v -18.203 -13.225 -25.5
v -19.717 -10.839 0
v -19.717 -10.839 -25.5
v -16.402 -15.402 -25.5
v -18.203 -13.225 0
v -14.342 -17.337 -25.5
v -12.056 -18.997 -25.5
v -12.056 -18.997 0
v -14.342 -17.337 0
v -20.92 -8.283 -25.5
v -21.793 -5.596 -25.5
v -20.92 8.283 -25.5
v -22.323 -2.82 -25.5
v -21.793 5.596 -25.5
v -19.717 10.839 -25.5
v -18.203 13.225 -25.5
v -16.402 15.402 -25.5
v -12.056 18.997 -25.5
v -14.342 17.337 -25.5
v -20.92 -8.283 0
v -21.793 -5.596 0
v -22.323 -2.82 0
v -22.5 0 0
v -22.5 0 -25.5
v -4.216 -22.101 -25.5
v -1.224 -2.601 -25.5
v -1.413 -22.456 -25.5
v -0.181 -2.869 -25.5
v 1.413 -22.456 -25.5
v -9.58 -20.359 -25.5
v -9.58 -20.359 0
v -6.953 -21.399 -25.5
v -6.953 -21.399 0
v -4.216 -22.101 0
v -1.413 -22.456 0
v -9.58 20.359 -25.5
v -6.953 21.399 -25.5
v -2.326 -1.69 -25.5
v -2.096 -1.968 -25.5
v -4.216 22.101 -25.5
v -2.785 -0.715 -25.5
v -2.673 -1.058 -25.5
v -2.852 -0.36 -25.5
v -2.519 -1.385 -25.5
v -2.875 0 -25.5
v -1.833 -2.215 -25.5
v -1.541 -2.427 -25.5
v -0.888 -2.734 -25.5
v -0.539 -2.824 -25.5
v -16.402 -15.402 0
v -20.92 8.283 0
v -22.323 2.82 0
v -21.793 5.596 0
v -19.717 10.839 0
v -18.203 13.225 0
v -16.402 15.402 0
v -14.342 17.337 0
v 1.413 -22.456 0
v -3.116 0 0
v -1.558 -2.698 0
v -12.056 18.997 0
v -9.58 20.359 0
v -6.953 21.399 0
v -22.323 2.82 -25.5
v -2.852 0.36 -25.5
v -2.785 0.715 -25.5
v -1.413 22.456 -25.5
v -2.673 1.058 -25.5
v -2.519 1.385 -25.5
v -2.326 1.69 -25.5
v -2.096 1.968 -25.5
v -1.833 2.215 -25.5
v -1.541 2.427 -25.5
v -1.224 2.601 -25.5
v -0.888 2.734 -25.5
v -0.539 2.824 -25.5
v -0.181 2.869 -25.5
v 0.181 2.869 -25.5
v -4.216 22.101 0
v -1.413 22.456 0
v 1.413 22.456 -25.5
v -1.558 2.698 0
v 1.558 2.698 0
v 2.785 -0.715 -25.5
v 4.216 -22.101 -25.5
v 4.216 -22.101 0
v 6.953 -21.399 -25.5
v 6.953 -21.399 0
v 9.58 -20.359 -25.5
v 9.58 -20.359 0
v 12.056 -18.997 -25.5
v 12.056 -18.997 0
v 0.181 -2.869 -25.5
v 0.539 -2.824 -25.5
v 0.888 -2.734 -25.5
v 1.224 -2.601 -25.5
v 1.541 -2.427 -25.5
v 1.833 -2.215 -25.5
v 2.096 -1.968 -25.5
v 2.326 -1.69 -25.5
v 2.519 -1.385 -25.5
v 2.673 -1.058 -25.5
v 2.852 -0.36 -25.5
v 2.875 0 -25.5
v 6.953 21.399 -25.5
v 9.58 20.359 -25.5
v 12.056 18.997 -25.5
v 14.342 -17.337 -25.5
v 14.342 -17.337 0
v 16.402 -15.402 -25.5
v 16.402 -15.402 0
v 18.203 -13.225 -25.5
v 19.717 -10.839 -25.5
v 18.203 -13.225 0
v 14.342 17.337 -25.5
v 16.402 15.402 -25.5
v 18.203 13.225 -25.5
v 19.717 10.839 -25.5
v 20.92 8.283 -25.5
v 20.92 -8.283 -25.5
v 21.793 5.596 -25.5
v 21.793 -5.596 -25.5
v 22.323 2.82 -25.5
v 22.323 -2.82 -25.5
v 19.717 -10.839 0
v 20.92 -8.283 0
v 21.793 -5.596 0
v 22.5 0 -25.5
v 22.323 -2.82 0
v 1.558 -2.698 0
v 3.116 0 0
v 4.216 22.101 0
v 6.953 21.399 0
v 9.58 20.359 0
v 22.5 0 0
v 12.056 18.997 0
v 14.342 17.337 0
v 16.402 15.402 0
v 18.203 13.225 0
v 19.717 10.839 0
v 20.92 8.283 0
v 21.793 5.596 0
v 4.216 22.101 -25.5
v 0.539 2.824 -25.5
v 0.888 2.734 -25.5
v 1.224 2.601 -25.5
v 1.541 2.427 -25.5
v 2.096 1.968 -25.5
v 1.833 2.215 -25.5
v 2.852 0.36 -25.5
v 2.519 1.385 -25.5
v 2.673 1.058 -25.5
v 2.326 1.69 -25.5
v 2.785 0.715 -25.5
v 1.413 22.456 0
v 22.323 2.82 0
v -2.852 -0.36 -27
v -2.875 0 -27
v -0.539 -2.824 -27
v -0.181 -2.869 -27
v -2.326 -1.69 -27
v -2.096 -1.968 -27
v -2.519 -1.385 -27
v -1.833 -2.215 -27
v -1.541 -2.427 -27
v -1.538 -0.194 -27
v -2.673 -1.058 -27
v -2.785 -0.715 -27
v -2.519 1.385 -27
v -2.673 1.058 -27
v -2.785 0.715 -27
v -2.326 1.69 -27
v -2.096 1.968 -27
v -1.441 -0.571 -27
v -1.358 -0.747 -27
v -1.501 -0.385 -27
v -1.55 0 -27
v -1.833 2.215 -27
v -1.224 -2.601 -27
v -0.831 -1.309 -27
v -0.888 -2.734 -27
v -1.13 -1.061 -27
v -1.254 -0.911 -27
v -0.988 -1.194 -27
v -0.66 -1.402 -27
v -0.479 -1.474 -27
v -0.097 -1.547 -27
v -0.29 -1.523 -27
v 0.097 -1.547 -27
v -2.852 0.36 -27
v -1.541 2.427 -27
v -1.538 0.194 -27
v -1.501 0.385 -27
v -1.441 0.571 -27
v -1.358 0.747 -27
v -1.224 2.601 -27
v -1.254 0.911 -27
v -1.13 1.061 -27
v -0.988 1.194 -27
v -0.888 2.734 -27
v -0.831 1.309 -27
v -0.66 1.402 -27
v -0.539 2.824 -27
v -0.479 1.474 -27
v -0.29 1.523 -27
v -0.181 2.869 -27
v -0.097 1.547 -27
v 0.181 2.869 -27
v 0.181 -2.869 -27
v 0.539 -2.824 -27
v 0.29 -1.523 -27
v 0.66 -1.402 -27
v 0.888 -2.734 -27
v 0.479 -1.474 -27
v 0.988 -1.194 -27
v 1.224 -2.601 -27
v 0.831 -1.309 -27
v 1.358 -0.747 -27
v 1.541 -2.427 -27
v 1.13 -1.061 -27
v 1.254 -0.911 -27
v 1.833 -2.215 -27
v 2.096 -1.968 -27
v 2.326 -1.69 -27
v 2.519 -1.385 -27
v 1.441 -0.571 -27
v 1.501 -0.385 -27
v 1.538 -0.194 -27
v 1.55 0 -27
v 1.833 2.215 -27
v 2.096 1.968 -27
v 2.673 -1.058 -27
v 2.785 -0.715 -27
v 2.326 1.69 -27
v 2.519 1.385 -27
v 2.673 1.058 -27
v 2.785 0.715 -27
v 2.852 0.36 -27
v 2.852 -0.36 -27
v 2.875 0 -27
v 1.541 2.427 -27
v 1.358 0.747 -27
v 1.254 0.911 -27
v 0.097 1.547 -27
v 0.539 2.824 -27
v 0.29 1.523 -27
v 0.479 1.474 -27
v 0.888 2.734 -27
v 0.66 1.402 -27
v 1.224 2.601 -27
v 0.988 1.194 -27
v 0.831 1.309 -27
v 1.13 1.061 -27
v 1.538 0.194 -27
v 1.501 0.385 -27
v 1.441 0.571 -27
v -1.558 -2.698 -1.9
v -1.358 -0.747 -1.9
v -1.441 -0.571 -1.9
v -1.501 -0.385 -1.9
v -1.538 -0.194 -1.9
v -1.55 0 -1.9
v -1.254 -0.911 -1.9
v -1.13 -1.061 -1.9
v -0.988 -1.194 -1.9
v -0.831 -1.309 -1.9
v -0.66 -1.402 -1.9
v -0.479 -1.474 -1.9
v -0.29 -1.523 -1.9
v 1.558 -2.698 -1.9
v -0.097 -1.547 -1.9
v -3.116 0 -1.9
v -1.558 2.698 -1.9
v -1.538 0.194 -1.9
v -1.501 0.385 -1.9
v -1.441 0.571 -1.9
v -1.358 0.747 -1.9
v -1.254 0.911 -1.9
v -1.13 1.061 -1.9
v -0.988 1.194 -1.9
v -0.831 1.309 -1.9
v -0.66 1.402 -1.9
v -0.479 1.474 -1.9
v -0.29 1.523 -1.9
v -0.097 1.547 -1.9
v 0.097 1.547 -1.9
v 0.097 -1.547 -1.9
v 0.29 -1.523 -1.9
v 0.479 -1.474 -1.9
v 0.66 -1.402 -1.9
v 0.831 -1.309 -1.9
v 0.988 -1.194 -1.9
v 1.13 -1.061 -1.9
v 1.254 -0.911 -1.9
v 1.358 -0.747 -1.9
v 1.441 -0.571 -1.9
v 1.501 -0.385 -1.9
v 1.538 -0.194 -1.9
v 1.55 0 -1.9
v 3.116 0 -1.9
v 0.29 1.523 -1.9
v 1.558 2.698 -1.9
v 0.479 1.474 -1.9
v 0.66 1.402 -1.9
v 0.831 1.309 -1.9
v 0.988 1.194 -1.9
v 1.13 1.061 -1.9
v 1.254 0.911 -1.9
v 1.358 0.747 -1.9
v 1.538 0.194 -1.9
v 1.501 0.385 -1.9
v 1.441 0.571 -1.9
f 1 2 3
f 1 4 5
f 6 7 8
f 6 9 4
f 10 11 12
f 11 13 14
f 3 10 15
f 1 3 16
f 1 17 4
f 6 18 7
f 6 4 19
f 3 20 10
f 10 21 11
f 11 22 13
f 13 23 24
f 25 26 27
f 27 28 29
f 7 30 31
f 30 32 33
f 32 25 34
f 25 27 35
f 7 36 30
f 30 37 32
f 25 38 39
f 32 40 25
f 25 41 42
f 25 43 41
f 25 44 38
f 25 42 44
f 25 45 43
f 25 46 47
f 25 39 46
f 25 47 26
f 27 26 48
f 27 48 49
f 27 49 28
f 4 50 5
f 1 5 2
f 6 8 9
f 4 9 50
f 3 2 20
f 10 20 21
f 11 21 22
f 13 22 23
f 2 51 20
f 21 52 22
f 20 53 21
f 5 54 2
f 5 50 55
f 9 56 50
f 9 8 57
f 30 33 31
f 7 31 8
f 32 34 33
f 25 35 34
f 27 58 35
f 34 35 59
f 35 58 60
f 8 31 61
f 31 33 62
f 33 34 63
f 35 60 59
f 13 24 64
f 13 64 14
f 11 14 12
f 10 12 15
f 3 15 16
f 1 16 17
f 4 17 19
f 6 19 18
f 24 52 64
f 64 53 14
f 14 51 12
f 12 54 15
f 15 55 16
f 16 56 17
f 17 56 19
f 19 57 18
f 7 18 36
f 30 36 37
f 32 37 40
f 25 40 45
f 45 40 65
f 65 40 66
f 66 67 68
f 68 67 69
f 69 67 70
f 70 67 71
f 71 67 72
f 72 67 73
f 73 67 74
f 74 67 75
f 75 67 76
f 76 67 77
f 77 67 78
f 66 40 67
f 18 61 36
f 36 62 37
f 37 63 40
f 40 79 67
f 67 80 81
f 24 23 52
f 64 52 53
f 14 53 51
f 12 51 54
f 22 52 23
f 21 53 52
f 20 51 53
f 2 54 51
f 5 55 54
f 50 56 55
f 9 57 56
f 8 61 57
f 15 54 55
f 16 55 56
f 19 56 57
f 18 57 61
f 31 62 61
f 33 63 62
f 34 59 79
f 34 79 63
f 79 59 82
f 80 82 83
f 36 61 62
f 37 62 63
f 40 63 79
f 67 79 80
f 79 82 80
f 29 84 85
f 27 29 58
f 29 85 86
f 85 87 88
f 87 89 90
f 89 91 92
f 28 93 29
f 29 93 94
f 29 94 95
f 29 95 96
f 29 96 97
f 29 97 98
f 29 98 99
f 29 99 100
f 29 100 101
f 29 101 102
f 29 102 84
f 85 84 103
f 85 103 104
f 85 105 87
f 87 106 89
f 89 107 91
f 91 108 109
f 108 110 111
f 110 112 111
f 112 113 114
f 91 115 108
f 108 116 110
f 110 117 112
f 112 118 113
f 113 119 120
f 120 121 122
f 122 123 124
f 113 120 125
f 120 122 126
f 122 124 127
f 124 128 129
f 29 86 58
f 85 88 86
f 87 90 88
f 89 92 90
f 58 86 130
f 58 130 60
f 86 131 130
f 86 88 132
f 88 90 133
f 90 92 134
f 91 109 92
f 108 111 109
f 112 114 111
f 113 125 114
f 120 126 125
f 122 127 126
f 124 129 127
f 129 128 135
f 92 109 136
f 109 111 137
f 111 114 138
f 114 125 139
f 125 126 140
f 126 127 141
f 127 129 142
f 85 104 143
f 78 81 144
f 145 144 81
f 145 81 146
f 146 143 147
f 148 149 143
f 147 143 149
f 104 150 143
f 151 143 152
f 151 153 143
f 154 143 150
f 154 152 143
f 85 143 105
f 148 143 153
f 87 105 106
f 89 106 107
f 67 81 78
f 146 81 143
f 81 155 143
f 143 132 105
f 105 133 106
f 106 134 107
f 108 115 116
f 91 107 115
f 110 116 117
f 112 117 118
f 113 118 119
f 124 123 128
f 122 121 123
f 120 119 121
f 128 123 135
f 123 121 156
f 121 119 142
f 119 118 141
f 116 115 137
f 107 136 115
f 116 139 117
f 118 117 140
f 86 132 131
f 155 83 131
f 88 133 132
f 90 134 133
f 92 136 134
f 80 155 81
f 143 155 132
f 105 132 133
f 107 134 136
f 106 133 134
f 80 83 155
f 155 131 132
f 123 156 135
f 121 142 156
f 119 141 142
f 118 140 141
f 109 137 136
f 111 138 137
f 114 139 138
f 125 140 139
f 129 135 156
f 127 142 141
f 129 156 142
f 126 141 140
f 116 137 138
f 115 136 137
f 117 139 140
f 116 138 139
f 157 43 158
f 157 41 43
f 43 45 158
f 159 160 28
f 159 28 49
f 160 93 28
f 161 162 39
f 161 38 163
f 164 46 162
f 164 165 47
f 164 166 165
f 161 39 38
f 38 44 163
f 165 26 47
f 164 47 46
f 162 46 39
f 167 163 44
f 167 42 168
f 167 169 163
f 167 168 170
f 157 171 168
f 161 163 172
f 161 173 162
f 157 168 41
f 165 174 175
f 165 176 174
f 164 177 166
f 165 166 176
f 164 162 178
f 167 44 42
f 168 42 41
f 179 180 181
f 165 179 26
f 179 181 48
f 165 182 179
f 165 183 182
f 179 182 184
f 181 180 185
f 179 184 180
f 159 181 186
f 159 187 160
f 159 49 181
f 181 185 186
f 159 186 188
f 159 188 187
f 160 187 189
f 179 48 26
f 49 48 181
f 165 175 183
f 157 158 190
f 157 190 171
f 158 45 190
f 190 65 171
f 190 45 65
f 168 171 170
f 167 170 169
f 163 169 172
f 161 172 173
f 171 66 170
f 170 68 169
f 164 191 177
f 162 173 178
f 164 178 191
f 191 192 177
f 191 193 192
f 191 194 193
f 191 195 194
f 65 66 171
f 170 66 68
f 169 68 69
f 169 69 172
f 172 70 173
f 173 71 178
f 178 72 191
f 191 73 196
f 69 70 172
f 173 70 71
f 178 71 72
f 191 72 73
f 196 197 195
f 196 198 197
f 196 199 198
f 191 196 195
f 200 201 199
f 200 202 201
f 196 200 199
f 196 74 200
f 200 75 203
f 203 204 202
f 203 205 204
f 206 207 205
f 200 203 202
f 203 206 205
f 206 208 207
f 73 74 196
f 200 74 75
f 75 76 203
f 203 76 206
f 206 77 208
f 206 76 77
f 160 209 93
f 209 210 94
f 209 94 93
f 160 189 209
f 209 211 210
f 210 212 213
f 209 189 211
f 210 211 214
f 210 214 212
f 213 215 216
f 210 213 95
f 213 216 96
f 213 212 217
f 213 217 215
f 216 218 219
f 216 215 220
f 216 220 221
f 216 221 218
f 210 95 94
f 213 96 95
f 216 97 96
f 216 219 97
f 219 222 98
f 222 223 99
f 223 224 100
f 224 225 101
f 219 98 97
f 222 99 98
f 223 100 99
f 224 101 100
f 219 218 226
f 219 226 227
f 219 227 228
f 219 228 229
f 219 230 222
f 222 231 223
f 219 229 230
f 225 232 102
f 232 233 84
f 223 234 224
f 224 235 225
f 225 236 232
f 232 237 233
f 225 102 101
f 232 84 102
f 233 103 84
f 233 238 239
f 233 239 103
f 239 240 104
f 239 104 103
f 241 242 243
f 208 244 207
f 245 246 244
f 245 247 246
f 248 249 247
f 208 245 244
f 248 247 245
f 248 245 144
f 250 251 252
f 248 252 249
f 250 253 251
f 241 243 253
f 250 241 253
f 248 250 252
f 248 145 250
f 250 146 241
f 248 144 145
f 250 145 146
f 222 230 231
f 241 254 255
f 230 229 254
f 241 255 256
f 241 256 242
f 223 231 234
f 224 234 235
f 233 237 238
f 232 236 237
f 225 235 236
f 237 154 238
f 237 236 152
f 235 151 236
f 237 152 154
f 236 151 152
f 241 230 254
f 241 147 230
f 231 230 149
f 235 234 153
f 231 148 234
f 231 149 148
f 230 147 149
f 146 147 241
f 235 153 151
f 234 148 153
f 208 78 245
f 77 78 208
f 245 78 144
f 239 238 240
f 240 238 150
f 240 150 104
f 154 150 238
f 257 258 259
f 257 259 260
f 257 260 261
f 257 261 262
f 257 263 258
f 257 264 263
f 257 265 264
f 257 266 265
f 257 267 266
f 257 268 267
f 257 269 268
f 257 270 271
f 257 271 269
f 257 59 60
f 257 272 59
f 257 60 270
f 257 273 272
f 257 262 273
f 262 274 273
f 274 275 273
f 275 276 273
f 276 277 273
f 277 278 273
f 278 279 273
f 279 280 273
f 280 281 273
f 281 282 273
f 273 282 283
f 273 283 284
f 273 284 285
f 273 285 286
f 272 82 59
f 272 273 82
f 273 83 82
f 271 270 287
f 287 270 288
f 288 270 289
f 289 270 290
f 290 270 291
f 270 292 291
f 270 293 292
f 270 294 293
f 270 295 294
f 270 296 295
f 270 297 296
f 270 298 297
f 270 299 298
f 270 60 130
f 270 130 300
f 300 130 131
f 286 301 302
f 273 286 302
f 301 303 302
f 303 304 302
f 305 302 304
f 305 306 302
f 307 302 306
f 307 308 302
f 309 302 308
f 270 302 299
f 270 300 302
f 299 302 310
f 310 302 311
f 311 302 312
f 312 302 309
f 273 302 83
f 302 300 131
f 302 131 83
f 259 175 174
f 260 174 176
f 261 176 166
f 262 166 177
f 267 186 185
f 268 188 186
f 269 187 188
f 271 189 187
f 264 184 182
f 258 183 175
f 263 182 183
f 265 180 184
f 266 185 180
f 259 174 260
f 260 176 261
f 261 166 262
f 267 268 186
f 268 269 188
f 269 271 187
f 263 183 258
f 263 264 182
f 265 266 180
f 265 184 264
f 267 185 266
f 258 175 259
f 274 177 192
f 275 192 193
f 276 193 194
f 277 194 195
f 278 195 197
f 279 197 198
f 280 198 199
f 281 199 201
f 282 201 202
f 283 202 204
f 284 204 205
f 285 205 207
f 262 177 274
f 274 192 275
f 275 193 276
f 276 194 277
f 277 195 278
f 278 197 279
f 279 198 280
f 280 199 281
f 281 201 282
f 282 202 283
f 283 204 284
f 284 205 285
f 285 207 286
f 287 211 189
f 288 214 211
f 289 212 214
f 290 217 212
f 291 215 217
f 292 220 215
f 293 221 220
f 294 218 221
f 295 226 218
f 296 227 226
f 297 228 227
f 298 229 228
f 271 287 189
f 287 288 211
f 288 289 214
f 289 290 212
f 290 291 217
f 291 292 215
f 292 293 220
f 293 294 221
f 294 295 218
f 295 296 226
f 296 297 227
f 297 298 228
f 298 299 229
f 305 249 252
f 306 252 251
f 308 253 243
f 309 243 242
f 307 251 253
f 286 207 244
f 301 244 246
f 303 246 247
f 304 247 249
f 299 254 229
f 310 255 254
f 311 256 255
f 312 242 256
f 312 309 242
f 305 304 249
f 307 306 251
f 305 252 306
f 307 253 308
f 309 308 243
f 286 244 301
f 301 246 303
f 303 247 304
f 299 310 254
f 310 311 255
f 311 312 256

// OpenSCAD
$fn = 50;


difference() {
	union() {
		translate(v = [0, 0, -25.5000000000]) {
			cylinder(h = 25.5000000000, r = 22.5000000000);
		}
		#translate(v = [0, 0, -27.0000000000]) {
			cylinder(h = 27, r = 2.8750000000);
		}
	}
	union() {
		translate(v = [0, 0, 0]) {
			rotate(a = [0, 0, 0]) {
				difference() {
					union() {
						translate(v = [0, 0, -1.9000000000]) {
							linear_extrude(height = 1.9000000000) {
								polygon(points = [[3.1158000000, 0.0000000000], [1.5579000000, 2.6983619531], [-1.5579000000, 2.6983619531], [-3.1158000000, 0.0000000000], [-1.5579000000, -2.6983619531], [1.5579000000, -2.6983619531]]);
							}
						}
					}
					union();
				}
			}
		}
		#translate(v = [0, 0, -100.0000000000]) {
			cylinder(h = 200, r = 1.5500000000);
		}
	}
}
